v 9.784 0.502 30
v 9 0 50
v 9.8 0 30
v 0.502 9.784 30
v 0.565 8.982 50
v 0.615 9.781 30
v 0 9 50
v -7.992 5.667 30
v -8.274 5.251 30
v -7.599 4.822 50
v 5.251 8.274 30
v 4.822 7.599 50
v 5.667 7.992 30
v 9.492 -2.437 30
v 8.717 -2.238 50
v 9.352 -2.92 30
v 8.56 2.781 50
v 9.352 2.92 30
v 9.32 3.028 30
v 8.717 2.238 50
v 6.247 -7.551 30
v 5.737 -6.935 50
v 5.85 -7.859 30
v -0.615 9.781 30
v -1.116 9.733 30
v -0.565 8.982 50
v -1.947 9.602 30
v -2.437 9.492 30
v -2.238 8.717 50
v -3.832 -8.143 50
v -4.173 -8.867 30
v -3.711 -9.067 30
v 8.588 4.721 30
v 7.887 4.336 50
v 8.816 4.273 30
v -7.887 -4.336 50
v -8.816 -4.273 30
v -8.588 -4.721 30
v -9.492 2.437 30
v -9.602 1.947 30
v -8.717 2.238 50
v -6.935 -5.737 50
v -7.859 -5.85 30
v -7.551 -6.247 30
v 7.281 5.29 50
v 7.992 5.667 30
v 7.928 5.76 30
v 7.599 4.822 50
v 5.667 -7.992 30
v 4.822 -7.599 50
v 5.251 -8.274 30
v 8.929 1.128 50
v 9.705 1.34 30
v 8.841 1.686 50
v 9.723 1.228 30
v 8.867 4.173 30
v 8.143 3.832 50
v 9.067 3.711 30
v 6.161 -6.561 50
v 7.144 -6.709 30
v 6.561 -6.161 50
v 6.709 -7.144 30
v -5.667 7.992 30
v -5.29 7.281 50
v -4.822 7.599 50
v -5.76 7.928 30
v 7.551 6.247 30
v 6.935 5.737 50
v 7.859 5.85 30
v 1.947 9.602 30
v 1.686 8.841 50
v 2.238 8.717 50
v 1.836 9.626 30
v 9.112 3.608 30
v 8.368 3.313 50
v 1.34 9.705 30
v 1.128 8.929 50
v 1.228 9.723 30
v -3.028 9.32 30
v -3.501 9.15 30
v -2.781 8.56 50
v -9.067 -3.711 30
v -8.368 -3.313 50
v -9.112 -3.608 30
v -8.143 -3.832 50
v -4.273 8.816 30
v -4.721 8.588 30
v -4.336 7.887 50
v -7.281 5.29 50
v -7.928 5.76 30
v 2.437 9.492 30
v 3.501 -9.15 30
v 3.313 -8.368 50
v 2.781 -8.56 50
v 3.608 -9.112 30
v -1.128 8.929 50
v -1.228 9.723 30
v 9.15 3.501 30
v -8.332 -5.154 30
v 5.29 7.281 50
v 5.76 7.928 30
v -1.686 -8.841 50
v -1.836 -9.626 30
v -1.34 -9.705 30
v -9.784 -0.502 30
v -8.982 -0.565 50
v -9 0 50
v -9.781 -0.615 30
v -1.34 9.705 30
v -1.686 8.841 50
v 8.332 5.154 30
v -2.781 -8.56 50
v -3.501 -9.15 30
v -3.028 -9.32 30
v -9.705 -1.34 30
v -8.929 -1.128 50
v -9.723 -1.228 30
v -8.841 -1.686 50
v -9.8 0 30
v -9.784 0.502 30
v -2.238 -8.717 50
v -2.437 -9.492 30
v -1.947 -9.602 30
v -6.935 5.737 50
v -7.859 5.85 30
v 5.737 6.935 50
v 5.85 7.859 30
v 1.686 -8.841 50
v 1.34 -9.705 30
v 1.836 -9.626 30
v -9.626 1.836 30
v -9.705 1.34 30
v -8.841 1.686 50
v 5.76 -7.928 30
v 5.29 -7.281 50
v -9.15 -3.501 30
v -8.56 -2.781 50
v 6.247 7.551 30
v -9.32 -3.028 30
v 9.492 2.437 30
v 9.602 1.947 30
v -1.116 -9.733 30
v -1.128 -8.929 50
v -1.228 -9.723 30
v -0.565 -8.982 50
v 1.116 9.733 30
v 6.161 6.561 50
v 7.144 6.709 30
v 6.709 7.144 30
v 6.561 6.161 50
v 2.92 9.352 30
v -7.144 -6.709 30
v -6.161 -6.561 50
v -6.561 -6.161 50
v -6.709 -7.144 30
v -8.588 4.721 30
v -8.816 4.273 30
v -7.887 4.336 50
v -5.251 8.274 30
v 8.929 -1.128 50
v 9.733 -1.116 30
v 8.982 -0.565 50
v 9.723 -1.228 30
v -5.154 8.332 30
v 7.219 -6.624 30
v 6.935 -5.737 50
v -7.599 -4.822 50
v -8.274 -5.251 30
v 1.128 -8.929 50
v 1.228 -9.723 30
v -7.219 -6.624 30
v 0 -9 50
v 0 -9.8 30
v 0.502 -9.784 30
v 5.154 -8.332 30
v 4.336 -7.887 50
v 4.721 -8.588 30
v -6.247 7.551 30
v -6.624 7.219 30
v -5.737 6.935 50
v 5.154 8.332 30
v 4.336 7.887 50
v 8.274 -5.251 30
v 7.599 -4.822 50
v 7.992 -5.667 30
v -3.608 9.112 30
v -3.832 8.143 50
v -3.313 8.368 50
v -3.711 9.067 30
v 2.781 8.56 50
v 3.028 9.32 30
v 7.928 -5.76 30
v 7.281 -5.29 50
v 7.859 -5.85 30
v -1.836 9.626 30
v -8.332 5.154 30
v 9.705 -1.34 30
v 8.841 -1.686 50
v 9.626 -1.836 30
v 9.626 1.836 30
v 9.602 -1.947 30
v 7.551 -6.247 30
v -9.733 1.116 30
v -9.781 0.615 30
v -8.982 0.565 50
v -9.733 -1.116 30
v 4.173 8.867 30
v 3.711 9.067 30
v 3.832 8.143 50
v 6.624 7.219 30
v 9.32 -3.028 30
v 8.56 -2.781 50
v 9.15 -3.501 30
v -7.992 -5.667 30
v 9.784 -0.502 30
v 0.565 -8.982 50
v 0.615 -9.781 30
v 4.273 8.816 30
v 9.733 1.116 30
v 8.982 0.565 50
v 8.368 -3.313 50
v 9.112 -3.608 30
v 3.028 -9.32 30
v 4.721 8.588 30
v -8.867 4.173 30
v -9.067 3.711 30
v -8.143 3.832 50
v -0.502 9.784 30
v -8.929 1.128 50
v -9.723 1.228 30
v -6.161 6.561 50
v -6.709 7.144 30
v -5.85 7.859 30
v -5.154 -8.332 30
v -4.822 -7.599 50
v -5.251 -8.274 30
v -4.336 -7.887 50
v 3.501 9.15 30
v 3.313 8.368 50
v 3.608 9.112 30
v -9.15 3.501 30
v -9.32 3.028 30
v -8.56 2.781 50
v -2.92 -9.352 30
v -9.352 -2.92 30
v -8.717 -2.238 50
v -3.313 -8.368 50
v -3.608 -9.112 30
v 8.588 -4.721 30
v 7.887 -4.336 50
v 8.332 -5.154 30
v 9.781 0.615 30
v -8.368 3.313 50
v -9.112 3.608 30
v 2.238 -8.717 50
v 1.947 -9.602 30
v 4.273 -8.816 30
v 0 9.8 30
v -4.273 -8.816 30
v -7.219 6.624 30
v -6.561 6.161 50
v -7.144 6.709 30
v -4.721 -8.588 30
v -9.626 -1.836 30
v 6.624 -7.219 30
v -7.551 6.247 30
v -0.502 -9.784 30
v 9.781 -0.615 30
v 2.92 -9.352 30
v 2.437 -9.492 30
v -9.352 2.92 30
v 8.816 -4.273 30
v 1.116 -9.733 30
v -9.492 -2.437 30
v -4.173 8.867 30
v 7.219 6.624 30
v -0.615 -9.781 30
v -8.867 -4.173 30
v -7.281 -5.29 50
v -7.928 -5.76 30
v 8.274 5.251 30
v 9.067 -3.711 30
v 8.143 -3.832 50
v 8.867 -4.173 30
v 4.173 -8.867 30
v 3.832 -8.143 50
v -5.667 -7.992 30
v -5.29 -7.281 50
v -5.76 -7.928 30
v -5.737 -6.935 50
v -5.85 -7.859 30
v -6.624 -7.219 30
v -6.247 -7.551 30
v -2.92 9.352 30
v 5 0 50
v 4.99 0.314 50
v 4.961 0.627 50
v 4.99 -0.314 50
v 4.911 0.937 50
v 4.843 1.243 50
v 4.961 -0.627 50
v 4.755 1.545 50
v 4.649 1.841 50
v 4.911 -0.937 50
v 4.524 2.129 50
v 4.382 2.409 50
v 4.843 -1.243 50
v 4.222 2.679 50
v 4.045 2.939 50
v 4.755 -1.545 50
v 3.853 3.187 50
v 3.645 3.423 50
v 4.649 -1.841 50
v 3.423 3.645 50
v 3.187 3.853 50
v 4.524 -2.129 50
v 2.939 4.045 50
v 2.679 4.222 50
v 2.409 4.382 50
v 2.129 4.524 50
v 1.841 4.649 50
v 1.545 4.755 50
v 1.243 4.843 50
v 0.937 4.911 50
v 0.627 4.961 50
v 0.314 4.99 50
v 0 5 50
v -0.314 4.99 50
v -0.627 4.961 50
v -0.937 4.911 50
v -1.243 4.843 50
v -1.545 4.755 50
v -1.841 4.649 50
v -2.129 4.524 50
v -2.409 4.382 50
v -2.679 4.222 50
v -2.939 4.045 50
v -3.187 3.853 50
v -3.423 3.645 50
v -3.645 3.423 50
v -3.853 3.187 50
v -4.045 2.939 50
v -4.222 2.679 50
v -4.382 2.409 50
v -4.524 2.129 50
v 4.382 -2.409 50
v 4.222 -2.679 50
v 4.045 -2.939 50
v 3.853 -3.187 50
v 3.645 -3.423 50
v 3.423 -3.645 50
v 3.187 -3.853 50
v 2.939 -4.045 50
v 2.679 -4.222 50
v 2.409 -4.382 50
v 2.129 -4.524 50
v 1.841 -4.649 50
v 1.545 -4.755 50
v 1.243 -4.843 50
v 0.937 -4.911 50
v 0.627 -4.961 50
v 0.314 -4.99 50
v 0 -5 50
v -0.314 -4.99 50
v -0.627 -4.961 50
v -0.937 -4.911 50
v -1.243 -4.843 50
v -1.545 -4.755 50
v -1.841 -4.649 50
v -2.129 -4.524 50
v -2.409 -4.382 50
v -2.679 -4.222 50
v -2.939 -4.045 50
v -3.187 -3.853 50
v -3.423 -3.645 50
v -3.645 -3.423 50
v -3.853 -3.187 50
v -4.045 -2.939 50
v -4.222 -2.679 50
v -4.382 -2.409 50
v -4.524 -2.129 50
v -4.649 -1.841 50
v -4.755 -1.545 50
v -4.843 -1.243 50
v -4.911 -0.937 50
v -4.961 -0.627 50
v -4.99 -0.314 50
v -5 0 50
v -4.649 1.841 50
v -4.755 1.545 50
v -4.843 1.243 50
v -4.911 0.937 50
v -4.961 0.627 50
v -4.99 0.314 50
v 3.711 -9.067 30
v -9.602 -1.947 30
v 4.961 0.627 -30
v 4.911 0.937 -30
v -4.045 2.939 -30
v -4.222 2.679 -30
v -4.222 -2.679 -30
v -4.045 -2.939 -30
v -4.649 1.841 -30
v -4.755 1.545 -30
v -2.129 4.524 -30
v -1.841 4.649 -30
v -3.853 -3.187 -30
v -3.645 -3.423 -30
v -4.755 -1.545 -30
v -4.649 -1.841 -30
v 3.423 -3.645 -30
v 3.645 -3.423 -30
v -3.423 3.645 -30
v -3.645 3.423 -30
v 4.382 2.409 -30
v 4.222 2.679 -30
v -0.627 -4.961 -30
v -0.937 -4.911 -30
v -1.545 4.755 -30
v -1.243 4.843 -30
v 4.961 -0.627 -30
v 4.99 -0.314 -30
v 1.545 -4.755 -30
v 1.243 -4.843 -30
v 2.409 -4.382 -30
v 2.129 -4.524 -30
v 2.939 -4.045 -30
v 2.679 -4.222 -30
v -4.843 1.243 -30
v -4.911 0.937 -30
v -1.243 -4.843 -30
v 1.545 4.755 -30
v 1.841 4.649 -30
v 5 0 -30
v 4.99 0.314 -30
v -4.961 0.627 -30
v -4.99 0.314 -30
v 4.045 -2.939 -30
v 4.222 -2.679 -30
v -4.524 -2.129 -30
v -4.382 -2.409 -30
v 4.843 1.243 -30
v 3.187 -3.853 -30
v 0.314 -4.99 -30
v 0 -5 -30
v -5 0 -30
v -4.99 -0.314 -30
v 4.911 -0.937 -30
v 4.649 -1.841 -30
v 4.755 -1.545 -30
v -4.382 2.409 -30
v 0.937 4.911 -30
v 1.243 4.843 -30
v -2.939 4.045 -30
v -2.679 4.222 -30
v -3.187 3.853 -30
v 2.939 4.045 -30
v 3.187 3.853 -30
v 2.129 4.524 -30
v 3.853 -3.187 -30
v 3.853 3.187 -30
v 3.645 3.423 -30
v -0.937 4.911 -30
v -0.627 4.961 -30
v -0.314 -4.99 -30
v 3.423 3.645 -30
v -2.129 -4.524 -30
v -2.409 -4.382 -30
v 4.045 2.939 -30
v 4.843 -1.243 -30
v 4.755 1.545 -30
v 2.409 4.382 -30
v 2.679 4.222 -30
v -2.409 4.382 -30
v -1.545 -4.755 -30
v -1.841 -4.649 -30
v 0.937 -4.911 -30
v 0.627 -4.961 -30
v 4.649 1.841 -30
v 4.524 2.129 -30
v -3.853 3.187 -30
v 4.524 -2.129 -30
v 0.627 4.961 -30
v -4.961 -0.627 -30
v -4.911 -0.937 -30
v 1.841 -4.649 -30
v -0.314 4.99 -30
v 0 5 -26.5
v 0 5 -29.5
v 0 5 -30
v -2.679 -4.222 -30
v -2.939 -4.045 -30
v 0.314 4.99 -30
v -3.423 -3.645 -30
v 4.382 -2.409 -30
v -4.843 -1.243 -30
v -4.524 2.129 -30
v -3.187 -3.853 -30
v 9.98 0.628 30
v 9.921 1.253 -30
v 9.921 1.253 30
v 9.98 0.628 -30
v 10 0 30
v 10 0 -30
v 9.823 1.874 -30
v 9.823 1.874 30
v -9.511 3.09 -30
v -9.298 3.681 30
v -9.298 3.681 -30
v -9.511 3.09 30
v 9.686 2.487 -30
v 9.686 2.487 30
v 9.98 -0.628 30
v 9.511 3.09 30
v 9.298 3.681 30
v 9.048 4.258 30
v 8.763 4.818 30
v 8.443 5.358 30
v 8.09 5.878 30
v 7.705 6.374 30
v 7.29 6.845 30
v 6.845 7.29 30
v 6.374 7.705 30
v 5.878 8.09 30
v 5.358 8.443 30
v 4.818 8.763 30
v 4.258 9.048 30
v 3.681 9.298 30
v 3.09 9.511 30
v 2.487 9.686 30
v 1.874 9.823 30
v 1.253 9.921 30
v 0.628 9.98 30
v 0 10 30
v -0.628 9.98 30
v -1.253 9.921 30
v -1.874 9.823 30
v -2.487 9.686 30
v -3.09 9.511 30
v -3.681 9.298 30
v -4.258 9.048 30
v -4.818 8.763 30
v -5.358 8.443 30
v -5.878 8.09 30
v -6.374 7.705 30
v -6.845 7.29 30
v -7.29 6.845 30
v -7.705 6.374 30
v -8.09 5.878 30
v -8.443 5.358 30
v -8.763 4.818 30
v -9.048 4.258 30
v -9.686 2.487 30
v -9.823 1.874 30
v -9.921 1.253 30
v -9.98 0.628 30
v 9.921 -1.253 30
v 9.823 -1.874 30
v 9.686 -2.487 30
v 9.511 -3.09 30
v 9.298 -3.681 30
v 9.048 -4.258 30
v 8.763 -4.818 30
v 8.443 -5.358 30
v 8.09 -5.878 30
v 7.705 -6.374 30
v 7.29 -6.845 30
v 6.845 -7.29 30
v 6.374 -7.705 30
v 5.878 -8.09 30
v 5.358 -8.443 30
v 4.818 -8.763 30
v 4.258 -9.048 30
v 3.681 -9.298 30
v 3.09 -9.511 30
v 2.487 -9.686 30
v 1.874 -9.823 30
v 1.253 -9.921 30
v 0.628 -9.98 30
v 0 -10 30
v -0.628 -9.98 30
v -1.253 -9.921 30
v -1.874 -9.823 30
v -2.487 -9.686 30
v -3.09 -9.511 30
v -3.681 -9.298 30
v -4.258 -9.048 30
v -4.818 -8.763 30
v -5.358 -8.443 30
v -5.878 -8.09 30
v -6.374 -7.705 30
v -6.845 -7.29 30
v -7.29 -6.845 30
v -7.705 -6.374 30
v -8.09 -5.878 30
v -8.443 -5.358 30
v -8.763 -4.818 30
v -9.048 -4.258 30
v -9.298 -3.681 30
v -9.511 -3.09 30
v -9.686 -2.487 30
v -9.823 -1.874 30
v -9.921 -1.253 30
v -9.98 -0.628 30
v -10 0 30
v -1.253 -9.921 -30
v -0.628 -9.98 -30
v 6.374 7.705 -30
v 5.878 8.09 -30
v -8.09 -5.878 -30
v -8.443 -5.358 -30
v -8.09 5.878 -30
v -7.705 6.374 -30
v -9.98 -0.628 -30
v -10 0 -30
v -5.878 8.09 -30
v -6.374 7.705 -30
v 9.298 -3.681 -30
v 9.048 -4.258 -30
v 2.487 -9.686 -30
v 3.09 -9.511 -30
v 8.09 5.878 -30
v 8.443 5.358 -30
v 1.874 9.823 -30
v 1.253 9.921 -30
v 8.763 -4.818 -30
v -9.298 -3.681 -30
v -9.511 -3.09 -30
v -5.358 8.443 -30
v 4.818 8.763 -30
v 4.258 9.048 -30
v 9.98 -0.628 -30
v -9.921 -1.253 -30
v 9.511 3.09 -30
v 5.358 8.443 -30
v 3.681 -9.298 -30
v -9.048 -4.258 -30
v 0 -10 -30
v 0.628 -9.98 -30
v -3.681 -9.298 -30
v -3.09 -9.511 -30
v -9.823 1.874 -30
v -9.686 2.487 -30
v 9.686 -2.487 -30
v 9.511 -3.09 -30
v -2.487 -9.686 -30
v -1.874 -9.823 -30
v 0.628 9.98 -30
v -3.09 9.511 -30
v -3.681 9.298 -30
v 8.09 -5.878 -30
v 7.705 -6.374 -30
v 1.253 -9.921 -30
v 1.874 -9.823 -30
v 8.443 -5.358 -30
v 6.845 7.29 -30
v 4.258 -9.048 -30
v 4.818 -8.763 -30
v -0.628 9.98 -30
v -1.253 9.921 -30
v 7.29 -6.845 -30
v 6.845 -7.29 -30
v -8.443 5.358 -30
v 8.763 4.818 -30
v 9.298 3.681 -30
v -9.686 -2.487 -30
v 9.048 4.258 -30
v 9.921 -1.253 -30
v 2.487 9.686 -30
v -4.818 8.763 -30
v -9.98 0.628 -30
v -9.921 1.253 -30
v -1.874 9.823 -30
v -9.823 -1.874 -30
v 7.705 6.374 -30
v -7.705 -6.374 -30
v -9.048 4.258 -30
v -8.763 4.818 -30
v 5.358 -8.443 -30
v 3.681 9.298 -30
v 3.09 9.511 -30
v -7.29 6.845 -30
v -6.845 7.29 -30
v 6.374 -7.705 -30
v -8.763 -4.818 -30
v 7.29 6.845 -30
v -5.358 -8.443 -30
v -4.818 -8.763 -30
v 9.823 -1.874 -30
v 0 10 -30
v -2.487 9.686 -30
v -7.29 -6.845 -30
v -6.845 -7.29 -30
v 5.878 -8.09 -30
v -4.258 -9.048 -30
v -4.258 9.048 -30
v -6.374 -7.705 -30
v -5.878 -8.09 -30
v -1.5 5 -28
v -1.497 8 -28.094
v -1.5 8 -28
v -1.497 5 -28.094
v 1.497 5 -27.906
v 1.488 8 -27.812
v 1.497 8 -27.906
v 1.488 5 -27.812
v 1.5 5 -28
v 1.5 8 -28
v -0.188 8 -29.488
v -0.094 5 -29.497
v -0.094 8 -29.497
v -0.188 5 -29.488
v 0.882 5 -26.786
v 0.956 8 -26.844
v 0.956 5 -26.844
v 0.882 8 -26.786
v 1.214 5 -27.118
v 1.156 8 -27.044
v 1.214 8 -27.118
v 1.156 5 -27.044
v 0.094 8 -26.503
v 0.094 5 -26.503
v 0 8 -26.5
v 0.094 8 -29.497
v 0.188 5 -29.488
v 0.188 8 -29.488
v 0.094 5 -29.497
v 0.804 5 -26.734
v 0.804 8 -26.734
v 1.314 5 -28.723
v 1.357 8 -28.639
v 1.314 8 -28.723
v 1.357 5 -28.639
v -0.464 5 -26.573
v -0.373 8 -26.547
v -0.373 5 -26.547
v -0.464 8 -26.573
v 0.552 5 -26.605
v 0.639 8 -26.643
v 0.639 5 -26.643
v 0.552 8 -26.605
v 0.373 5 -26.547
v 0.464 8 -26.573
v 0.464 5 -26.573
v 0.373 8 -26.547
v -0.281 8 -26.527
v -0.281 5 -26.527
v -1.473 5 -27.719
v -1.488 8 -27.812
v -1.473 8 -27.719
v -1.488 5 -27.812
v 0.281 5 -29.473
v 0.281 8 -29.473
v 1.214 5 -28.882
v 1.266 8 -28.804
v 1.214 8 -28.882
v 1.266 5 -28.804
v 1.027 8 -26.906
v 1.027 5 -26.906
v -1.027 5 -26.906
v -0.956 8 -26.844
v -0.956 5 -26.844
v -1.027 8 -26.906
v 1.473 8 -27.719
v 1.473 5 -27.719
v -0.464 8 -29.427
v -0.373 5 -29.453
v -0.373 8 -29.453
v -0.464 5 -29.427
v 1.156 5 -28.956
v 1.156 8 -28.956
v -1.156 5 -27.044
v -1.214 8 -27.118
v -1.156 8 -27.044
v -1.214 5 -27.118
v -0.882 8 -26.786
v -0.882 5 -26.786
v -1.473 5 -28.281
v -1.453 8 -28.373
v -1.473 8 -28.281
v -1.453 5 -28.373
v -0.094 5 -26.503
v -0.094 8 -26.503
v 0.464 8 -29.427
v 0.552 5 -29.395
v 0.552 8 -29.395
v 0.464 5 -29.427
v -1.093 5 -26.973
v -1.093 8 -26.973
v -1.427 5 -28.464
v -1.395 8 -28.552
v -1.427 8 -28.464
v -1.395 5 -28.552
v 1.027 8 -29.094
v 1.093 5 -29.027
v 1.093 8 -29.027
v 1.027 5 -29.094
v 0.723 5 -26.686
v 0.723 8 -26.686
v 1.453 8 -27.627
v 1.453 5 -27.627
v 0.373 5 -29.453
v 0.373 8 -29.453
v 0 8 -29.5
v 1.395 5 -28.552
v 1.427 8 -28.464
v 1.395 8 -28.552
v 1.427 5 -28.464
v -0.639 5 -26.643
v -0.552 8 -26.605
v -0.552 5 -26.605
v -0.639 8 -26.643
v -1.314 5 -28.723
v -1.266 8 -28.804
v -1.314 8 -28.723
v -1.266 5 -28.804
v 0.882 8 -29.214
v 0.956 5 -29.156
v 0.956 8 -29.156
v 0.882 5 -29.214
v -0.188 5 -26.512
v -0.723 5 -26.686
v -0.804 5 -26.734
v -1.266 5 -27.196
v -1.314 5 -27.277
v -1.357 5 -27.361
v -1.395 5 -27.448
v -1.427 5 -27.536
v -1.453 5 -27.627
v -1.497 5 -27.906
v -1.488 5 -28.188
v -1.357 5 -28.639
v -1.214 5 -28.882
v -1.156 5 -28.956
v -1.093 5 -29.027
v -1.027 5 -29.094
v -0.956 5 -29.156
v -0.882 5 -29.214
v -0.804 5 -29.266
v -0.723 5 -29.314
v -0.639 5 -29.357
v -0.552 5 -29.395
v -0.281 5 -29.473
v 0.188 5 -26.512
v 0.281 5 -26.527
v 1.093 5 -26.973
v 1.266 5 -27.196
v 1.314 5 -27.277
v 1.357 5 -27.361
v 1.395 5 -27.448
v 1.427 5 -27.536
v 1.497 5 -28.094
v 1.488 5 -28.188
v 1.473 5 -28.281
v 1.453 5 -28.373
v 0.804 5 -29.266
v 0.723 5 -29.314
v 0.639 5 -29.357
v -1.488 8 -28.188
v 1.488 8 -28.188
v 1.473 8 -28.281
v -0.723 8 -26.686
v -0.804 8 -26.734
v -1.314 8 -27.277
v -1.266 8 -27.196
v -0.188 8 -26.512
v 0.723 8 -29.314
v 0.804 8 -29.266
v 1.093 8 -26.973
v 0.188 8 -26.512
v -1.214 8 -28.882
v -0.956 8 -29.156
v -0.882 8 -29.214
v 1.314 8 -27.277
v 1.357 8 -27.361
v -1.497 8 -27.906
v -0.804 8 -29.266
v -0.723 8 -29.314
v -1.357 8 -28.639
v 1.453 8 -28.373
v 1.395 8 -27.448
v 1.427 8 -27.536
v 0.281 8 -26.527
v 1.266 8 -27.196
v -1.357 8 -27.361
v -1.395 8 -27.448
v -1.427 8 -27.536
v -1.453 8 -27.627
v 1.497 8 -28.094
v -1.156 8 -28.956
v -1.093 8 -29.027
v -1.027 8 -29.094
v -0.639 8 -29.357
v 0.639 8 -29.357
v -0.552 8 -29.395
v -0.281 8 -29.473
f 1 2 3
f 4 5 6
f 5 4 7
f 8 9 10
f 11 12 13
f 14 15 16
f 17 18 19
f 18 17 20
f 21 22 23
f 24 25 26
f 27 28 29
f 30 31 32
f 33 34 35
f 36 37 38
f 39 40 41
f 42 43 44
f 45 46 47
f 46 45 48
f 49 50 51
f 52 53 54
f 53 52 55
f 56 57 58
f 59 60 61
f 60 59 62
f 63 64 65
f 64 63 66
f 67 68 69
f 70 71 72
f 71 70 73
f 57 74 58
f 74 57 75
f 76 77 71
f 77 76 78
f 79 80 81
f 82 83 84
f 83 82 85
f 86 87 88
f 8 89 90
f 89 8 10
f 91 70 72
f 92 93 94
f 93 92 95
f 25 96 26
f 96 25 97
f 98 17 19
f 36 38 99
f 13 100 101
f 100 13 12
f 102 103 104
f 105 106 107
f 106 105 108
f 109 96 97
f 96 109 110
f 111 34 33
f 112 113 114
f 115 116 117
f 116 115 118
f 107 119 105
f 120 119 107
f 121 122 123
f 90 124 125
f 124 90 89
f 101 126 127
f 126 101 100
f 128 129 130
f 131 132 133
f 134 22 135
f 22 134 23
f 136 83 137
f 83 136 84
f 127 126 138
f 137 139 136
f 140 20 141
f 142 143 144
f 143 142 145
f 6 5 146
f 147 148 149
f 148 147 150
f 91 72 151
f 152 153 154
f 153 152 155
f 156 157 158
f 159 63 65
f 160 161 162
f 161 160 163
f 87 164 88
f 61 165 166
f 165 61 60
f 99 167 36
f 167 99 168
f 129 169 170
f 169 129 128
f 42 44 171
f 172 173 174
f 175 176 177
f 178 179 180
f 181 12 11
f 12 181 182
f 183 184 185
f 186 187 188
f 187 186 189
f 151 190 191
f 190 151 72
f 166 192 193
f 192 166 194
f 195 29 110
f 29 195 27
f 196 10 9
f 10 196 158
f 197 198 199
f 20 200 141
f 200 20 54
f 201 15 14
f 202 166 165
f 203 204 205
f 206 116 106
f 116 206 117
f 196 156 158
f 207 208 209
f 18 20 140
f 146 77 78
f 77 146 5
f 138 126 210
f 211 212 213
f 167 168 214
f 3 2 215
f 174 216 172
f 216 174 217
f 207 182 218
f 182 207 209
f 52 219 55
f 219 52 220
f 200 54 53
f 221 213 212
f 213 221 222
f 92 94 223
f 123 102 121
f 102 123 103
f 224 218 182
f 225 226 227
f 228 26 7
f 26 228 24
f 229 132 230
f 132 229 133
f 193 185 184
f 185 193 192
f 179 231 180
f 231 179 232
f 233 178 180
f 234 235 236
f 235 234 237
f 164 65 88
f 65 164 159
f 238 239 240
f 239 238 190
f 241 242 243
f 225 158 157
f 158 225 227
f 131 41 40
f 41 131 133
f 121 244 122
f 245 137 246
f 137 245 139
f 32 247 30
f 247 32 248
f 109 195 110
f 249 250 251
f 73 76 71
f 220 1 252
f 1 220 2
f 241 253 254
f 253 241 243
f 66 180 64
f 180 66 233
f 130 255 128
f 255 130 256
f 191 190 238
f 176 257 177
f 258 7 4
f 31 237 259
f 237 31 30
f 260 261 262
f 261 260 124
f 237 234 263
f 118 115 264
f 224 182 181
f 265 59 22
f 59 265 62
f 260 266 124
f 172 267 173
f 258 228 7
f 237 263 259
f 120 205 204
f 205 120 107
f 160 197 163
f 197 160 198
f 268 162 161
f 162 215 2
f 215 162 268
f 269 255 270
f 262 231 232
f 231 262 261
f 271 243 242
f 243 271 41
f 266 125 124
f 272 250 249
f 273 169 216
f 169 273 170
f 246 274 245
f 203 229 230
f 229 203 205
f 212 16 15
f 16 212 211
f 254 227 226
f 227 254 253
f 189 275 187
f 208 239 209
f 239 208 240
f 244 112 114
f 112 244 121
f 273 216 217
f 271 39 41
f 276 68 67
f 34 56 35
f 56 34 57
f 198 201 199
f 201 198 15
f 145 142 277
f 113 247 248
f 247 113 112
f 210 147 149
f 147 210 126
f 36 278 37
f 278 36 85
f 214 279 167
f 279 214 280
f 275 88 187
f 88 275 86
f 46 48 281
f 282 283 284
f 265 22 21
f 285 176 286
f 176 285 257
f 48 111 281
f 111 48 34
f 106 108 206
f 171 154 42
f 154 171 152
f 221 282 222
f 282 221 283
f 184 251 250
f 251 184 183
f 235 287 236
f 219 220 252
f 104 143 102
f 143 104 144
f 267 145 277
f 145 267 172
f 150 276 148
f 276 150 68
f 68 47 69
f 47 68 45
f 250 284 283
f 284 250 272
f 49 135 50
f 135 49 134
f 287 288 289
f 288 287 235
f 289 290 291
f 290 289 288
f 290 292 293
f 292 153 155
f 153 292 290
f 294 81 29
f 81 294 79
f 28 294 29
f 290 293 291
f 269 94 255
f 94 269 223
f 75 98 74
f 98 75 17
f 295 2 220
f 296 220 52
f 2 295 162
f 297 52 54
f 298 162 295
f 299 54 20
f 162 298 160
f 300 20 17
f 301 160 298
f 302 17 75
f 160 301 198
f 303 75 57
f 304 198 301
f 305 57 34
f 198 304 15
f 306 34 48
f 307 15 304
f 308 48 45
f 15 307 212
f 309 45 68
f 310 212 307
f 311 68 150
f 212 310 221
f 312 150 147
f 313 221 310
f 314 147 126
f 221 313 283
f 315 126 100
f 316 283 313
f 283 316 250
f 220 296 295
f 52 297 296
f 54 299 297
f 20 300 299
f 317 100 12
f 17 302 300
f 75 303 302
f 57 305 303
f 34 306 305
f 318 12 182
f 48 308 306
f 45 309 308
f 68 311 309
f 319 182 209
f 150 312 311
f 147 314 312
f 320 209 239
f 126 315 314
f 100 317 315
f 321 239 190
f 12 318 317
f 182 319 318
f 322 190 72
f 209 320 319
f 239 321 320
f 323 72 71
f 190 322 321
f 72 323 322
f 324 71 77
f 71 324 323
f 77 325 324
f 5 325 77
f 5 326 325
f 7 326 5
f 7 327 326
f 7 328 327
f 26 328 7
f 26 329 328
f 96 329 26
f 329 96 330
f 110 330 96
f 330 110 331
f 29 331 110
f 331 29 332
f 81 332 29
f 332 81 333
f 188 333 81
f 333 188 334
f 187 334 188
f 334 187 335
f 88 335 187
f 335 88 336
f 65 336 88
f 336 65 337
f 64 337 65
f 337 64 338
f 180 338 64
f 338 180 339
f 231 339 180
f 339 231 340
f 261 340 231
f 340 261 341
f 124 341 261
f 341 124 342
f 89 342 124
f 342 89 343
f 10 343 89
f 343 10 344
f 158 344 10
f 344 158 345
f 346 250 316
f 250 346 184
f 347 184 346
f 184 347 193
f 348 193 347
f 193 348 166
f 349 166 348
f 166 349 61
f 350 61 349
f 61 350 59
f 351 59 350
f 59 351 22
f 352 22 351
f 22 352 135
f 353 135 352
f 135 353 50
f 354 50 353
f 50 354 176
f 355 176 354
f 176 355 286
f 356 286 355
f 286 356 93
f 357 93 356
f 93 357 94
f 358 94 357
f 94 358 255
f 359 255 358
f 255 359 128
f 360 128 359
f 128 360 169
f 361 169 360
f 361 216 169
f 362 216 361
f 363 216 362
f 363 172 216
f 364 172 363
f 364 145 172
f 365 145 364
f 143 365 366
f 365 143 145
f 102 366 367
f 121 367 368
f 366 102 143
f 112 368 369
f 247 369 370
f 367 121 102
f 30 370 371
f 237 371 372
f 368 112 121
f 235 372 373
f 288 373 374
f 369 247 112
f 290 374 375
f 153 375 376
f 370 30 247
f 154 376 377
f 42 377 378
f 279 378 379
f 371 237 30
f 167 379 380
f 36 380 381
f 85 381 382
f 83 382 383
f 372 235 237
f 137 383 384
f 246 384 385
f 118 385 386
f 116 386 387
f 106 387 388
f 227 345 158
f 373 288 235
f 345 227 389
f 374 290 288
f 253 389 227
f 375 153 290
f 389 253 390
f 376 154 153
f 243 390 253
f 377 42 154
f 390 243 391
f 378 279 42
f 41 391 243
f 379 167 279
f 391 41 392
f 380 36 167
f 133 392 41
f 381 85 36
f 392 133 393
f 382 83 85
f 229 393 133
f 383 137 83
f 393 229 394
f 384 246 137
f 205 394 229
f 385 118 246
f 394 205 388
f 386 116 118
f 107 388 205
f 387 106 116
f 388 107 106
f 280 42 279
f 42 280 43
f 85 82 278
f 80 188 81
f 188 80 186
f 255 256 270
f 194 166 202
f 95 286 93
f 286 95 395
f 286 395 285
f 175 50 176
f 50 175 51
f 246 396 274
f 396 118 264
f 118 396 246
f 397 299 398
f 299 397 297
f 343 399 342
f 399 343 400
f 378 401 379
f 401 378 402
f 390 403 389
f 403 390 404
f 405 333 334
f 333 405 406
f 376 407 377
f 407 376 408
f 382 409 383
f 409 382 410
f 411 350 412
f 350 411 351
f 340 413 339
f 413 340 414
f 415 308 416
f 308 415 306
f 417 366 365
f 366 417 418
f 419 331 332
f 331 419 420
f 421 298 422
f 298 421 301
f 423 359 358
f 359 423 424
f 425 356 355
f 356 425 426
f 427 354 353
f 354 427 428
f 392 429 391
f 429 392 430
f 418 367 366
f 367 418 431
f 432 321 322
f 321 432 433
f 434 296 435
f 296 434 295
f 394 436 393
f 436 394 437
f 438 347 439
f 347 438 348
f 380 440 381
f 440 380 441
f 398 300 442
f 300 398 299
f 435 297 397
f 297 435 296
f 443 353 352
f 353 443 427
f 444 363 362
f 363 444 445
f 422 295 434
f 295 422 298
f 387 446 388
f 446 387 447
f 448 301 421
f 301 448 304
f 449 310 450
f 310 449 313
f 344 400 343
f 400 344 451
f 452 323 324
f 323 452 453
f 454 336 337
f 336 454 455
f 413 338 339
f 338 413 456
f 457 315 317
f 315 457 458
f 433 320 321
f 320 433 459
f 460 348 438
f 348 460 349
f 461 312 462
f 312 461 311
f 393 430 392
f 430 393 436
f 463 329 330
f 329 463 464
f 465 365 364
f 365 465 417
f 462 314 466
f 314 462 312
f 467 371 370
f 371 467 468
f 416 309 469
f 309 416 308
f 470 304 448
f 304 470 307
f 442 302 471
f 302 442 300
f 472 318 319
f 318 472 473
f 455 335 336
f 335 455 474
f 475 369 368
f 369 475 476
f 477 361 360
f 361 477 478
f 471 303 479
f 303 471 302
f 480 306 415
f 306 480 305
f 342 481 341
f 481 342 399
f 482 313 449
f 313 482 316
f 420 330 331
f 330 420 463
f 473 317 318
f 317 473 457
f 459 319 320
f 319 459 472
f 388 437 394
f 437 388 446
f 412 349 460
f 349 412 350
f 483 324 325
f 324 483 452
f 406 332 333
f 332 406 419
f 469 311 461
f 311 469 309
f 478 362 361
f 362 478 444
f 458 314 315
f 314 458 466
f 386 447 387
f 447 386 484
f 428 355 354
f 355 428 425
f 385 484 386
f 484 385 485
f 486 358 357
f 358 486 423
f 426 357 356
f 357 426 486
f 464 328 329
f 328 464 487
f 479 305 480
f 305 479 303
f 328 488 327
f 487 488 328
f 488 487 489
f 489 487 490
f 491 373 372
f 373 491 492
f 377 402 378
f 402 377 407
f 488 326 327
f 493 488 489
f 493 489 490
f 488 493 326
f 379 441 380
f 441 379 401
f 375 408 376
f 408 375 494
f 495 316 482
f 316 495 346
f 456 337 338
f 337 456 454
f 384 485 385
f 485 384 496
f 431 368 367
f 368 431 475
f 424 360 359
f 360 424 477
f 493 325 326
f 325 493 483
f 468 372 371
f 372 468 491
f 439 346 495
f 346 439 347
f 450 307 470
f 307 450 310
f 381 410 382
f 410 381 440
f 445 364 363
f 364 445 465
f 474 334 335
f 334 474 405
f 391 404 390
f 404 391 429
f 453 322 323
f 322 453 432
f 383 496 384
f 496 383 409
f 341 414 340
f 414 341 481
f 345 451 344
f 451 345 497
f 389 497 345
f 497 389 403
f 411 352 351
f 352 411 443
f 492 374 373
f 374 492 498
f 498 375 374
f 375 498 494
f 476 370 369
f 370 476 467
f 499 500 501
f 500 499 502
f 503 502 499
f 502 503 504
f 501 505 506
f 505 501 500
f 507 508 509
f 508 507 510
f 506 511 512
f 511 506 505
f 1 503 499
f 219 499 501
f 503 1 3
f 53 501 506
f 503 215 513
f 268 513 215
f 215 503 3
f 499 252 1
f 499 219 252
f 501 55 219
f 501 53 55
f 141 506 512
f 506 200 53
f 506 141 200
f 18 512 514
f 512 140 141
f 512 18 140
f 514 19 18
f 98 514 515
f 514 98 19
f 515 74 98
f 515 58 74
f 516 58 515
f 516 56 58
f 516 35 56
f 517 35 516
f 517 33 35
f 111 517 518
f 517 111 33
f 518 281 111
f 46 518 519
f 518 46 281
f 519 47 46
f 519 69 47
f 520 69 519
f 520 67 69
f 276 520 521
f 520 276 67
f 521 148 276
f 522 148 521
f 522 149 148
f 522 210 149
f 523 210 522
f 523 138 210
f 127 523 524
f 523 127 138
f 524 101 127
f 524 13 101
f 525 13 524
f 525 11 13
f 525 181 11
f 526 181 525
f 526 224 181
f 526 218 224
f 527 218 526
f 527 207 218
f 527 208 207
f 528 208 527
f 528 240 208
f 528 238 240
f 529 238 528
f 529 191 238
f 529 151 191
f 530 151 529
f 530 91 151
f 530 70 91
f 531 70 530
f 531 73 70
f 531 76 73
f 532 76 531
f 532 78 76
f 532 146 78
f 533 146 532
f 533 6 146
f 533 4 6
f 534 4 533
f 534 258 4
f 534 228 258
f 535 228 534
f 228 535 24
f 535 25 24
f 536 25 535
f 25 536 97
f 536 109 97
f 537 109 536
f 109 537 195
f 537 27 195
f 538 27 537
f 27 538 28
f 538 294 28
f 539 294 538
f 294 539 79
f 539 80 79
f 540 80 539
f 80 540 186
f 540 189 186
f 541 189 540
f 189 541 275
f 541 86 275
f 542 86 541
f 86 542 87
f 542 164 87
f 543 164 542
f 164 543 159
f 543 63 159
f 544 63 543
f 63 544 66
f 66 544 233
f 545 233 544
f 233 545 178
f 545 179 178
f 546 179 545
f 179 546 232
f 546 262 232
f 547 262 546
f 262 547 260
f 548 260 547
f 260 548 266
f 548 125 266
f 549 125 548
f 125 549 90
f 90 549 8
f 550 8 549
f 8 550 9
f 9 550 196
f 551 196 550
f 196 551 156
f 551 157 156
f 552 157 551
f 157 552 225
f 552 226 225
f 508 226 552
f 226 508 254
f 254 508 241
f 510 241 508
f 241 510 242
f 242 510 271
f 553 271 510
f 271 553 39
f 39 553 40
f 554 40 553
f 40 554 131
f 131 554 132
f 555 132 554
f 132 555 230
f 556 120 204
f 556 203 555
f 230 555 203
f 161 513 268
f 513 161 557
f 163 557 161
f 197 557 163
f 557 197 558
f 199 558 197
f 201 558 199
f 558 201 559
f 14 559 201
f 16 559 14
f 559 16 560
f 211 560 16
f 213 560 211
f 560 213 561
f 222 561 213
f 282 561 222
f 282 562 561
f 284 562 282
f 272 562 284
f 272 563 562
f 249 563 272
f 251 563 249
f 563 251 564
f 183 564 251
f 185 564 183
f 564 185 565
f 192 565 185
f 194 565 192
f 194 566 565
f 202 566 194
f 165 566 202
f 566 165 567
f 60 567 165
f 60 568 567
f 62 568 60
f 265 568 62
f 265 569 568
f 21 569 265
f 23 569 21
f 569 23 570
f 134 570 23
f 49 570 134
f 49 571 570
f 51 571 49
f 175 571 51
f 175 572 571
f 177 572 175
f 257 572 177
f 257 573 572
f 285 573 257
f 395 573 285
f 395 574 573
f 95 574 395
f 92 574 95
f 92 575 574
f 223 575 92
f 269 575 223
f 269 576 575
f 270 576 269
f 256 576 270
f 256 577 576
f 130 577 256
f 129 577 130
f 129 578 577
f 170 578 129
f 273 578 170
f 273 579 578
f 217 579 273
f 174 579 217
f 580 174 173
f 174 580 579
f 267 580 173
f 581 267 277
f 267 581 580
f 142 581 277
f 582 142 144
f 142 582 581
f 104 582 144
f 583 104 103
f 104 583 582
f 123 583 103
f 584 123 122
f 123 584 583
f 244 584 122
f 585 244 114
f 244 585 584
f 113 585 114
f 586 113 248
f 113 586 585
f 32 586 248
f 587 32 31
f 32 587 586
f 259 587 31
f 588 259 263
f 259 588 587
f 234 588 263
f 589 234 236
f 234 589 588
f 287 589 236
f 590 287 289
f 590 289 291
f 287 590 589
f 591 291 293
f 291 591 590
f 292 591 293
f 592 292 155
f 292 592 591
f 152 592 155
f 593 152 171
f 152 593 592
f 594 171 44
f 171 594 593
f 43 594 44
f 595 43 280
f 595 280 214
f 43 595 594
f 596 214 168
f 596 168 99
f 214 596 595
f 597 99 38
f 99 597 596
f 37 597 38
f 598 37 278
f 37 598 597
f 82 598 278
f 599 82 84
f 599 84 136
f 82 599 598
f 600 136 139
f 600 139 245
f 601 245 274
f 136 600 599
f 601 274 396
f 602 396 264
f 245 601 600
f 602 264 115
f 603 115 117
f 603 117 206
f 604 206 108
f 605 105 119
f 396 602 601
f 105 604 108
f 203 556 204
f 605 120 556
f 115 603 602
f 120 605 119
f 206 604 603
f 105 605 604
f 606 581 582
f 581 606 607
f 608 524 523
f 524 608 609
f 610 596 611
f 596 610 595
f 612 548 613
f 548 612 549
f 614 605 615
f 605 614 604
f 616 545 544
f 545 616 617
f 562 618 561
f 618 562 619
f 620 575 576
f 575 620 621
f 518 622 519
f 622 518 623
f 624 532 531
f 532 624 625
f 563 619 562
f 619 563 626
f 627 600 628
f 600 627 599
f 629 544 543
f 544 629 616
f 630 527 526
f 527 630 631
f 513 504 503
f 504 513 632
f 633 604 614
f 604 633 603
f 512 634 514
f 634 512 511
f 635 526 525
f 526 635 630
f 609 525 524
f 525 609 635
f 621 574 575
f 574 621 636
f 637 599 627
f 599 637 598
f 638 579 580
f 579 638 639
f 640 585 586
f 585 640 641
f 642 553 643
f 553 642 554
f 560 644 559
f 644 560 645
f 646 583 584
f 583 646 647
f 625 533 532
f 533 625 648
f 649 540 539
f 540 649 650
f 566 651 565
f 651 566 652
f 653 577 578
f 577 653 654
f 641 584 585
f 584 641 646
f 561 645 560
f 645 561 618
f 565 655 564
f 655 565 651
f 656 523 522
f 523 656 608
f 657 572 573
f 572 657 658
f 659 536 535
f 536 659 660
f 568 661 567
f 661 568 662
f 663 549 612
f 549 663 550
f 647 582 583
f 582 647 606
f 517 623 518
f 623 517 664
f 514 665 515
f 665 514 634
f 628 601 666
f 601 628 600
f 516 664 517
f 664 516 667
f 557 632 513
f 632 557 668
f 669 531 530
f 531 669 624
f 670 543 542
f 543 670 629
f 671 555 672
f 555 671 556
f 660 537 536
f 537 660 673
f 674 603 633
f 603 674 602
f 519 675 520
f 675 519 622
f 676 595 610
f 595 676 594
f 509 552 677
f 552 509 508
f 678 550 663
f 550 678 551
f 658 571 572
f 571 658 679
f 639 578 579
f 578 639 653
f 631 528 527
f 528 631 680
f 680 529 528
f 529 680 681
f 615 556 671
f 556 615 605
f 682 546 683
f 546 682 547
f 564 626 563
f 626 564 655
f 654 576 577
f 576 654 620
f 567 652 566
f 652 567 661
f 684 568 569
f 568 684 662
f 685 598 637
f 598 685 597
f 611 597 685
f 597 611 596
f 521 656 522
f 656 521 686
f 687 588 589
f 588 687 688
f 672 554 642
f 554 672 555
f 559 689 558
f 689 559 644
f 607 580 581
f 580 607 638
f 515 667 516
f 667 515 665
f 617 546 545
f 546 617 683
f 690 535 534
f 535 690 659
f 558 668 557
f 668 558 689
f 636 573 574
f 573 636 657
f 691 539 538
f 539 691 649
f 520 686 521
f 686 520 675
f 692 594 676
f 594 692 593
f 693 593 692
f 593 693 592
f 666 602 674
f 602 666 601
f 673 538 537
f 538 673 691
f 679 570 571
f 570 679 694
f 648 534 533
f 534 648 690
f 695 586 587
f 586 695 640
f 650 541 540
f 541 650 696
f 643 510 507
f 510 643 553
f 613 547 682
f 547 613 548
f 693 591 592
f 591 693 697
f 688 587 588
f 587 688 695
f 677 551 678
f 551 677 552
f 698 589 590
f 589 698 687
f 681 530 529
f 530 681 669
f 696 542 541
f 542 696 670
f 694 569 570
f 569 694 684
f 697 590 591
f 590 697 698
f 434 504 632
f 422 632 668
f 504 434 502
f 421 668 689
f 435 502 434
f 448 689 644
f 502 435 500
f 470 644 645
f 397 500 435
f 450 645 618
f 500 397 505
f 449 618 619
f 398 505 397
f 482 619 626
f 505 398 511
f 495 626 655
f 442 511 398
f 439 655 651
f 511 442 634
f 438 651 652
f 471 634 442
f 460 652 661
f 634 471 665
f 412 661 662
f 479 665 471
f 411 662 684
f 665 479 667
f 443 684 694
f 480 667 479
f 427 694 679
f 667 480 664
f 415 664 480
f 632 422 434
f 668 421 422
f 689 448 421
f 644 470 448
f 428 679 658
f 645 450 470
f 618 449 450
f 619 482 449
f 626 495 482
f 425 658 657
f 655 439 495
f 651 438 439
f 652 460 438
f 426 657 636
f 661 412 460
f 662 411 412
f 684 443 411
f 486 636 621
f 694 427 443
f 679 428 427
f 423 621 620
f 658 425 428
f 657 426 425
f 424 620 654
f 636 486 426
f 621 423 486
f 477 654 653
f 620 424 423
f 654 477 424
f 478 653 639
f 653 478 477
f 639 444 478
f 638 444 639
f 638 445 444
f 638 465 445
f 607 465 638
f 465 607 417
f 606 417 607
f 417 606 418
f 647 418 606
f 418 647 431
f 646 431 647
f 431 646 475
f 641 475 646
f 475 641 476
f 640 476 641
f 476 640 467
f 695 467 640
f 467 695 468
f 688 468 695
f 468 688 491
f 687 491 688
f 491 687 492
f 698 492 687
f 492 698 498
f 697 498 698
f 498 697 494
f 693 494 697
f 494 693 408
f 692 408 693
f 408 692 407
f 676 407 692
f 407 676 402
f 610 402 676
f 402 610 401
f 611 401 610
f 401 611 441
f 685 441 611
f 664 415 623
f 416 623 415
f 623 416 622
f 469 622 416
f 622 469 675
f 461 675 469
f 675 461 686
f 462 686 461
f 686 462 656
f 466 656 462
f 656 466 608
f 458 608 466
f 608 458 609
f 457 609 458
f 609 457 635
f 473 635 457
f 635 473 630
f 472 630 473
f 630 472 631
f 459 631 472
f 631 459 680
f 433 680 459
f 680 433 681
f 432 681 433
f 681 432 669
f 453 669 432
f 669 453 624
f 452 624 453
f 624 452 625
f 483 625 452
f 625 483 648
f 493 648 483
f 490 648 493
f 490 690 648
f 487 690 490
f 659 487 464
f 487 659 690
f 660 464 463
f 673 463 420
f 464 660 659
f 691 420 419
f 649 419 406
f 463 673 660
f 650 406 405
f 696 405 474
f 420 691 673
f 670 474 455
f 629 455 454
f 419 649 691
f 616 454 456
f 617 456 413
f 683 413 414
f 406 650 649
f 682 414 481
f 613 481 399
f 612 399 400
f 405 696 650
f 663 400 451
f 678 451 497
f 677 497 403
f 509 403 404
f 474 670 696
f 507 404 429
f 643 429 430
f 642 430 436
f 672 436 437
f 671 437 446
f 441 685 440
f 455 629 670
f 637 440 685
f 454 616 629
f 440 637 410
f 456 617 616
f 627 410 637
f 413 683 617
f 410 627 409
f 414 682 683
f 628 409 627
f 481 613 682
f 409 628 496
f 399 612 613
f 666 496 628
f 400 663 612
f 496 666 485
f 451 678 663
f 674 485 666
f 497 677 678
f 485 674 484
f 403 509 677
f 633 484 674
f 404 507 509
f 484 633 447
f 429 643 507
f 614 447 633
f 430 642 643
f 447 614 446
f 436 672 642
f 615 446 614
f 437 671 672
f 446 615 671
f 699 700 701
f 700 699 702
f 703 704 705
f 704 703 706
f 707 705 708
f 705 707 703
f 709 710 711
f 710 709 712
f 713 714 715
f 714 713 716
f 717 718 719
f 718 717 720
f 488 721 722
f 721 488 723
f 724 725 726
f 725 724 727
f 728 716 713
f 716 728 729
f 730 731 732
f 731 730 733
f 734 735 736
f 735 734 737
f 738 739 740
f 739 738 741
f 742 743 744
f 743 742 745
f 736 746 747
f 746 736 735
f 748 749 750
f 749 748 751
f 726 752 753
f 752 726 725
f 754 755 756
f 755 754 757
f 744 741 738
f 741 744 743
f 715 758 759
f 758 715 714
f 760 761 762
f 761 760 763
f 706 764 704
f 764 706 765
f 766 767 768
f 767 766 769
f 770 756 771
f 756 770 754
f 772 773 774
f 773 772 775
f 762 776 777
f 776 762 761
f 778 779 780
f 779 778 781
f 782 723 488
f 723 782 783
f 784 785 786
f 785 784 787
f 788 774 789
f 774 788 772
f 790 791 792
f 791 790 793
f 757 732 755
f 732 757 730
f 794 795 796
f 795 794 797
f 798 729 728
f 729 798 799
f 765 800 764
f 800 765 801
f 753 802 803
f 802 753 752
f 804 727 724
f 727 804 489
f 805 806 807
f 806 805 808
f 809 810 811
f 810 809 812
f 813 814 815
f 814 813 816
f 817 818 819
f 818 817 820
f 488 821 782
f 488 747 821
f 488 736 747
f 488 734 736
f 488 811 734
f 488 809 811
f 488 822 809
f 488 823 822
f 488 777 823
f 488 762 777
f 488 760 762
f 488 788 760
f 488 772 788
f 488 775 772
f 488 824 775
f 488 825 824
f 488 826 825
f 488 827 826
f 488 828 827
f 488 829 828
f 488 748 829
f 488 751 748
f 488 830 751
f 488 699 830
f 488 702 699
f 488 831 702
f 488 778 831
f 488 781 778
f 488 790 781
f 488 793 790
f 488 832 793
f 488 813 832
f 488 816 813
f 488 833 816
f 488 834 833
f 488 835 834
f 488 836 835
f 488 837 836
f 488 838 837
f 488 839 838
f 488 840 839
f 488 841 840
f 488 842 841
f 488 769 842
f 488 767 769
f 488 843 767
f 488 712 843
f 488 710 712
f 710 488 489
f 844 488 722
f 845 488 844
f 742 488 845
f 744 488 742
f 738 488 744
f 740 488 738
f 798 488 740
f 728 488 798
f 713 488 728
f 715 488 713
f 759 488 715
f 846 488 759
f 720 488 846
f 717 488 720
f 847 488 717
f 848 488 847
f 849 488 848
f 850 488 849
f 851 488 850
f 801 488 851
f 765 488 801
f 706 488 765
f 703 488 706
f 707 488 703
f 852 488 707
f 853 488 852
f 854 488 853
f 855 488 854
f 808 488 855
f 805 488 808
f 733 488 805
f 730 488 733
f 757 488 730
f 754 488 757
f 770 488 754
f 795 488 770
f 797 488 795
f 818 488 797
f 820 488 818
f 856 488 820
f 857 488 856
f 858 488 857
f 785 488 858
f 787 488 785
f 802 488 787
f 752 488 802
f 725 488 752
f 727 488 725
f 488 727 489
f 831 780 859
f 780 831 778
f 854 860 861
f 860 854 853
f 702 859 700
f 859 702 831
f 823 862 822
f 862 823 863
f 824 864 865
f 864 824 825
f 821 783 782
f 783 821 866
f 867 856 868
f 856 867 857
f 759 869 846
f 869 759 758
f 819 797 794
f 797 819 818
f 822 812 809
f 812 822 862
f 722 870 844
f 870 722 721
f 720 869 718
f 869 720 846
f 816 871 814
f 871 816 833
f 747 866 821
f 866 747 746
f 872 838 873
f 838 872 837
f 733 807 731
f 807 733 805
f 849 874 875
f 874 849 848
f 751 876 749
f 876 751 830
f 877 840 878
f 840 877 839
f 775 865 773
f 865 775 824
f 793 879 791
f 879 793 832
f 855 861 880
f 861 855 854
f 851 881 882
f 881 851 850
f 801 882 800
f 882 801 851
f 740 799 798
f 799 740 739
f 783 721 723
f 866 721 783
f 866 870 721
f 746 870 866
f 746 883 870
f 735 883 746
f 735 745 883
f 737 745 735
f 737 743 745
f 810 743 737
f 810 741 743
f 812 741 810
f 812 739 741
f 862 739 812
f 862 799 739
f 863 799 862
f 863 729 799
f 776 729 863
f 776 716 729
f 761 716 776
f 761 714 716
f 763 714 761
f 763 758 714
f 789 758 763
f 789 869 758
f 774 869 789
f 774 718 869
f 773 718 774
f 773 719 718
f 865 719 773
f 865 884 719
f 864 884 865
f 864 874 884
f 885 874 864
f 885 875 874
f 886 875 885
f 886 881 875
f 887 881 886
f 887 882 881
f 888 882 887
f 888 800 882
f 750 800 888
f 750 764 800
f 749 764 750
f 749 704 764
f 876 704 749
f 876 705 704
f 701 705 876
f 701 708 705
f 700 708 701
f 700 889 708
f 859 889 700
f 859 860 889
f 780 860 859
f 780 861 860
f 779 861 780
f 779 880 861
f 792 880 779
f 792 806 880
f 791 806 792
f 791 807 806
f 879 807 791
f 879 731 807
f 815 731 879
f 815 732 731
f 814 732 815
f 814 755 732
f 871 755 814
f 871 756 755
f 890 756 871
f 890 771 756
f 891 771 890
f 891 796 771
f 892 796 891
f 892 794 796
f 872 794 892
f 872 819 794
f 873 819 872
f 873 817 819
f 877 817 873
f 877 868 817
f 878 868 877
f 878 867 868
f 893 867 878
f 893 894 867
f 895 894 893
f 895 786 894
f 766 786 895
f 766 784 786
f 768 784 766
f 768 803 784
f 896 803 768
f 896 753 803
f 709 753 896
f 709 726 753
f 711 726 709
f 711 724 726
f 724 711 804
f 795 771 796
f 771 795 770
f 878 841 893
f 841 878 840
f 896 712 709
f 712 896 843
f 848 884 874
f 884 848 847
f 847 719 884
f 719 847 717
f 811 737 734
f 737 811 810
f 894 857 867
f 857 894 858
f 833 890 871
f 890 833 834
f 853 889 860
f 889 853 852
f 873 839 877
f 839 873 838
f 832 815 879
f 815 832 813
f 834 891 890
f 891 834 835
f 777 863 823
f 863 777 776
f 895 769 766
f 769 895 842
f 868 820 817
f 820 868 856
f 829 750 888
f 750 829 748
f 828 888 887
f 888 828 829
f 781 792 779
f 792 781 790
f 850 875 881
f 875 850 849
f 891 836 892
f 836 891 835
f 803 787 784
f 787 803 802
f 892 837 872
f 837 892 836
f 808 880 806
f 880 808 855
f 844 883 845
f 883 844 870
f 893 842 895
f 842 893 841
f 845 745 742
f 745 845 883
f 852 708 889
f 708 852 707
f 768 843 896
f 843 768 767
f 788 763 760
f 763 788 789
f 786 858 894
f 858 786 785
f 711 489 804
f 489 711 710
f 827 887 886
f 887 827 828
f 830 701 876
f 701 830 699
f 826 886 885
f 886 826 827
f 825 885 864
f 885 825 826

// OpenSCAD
// Parameters for the components
module central_shaft() {
    // Modified to remove tapering and make it uniformly cylindrical
    difference() {
        cylinder(h = 30, r = 10, $fn = 100); // Outer cylinder
        translate([0, 0, -1]) cylinder(h = 32, r = 5, $fn = 100); // Inner hollow
    }
}

module input_shaft() {
    // Modified to reduce tapering and add a bolt hole near one end
    difference() {
        cylinder(h = 25, r1 = 10, r2 = 9, $fn = 100); // Reduced tapering
        translate([0, 0, -1]) cylinder(h = 27, r = 5, $fn = 100); // Inner hollow
        translate([0, 8, 2]) rotate([90, 0, 0]) cylinder(h = 3, r = 1.5, $fn = 100); // Bolt hole near one end
    }
}

module output_shaft() {
    // Modified to add a bolt hole near one end and adjust the length
    difference() {
        cylinder(h = 30, r = 10, $fn = 100); // Adjusted length
        translate([0, 0, -1]) cylinder(h = 32, r = 5, $fn = 100); // Inner hollow
        translate([0, 8, 2]) rotate([90, 0, 0]) cylinder(h = 3, r = 1.5, $fn = 100); // Bolt hole near one end
    }
}

// Assembly of the flexible coupling
module flexible_coupling() {
    translate([0, 0, 25]) input_shaft(); // Layer 1: Input shaft
    central_shaft(); // Layer 2: Central shaft
    translate([0, 0, -30]) output_shaft(); // Layer 3: Output shaft
}

// Render the model
flexible_coupling();
